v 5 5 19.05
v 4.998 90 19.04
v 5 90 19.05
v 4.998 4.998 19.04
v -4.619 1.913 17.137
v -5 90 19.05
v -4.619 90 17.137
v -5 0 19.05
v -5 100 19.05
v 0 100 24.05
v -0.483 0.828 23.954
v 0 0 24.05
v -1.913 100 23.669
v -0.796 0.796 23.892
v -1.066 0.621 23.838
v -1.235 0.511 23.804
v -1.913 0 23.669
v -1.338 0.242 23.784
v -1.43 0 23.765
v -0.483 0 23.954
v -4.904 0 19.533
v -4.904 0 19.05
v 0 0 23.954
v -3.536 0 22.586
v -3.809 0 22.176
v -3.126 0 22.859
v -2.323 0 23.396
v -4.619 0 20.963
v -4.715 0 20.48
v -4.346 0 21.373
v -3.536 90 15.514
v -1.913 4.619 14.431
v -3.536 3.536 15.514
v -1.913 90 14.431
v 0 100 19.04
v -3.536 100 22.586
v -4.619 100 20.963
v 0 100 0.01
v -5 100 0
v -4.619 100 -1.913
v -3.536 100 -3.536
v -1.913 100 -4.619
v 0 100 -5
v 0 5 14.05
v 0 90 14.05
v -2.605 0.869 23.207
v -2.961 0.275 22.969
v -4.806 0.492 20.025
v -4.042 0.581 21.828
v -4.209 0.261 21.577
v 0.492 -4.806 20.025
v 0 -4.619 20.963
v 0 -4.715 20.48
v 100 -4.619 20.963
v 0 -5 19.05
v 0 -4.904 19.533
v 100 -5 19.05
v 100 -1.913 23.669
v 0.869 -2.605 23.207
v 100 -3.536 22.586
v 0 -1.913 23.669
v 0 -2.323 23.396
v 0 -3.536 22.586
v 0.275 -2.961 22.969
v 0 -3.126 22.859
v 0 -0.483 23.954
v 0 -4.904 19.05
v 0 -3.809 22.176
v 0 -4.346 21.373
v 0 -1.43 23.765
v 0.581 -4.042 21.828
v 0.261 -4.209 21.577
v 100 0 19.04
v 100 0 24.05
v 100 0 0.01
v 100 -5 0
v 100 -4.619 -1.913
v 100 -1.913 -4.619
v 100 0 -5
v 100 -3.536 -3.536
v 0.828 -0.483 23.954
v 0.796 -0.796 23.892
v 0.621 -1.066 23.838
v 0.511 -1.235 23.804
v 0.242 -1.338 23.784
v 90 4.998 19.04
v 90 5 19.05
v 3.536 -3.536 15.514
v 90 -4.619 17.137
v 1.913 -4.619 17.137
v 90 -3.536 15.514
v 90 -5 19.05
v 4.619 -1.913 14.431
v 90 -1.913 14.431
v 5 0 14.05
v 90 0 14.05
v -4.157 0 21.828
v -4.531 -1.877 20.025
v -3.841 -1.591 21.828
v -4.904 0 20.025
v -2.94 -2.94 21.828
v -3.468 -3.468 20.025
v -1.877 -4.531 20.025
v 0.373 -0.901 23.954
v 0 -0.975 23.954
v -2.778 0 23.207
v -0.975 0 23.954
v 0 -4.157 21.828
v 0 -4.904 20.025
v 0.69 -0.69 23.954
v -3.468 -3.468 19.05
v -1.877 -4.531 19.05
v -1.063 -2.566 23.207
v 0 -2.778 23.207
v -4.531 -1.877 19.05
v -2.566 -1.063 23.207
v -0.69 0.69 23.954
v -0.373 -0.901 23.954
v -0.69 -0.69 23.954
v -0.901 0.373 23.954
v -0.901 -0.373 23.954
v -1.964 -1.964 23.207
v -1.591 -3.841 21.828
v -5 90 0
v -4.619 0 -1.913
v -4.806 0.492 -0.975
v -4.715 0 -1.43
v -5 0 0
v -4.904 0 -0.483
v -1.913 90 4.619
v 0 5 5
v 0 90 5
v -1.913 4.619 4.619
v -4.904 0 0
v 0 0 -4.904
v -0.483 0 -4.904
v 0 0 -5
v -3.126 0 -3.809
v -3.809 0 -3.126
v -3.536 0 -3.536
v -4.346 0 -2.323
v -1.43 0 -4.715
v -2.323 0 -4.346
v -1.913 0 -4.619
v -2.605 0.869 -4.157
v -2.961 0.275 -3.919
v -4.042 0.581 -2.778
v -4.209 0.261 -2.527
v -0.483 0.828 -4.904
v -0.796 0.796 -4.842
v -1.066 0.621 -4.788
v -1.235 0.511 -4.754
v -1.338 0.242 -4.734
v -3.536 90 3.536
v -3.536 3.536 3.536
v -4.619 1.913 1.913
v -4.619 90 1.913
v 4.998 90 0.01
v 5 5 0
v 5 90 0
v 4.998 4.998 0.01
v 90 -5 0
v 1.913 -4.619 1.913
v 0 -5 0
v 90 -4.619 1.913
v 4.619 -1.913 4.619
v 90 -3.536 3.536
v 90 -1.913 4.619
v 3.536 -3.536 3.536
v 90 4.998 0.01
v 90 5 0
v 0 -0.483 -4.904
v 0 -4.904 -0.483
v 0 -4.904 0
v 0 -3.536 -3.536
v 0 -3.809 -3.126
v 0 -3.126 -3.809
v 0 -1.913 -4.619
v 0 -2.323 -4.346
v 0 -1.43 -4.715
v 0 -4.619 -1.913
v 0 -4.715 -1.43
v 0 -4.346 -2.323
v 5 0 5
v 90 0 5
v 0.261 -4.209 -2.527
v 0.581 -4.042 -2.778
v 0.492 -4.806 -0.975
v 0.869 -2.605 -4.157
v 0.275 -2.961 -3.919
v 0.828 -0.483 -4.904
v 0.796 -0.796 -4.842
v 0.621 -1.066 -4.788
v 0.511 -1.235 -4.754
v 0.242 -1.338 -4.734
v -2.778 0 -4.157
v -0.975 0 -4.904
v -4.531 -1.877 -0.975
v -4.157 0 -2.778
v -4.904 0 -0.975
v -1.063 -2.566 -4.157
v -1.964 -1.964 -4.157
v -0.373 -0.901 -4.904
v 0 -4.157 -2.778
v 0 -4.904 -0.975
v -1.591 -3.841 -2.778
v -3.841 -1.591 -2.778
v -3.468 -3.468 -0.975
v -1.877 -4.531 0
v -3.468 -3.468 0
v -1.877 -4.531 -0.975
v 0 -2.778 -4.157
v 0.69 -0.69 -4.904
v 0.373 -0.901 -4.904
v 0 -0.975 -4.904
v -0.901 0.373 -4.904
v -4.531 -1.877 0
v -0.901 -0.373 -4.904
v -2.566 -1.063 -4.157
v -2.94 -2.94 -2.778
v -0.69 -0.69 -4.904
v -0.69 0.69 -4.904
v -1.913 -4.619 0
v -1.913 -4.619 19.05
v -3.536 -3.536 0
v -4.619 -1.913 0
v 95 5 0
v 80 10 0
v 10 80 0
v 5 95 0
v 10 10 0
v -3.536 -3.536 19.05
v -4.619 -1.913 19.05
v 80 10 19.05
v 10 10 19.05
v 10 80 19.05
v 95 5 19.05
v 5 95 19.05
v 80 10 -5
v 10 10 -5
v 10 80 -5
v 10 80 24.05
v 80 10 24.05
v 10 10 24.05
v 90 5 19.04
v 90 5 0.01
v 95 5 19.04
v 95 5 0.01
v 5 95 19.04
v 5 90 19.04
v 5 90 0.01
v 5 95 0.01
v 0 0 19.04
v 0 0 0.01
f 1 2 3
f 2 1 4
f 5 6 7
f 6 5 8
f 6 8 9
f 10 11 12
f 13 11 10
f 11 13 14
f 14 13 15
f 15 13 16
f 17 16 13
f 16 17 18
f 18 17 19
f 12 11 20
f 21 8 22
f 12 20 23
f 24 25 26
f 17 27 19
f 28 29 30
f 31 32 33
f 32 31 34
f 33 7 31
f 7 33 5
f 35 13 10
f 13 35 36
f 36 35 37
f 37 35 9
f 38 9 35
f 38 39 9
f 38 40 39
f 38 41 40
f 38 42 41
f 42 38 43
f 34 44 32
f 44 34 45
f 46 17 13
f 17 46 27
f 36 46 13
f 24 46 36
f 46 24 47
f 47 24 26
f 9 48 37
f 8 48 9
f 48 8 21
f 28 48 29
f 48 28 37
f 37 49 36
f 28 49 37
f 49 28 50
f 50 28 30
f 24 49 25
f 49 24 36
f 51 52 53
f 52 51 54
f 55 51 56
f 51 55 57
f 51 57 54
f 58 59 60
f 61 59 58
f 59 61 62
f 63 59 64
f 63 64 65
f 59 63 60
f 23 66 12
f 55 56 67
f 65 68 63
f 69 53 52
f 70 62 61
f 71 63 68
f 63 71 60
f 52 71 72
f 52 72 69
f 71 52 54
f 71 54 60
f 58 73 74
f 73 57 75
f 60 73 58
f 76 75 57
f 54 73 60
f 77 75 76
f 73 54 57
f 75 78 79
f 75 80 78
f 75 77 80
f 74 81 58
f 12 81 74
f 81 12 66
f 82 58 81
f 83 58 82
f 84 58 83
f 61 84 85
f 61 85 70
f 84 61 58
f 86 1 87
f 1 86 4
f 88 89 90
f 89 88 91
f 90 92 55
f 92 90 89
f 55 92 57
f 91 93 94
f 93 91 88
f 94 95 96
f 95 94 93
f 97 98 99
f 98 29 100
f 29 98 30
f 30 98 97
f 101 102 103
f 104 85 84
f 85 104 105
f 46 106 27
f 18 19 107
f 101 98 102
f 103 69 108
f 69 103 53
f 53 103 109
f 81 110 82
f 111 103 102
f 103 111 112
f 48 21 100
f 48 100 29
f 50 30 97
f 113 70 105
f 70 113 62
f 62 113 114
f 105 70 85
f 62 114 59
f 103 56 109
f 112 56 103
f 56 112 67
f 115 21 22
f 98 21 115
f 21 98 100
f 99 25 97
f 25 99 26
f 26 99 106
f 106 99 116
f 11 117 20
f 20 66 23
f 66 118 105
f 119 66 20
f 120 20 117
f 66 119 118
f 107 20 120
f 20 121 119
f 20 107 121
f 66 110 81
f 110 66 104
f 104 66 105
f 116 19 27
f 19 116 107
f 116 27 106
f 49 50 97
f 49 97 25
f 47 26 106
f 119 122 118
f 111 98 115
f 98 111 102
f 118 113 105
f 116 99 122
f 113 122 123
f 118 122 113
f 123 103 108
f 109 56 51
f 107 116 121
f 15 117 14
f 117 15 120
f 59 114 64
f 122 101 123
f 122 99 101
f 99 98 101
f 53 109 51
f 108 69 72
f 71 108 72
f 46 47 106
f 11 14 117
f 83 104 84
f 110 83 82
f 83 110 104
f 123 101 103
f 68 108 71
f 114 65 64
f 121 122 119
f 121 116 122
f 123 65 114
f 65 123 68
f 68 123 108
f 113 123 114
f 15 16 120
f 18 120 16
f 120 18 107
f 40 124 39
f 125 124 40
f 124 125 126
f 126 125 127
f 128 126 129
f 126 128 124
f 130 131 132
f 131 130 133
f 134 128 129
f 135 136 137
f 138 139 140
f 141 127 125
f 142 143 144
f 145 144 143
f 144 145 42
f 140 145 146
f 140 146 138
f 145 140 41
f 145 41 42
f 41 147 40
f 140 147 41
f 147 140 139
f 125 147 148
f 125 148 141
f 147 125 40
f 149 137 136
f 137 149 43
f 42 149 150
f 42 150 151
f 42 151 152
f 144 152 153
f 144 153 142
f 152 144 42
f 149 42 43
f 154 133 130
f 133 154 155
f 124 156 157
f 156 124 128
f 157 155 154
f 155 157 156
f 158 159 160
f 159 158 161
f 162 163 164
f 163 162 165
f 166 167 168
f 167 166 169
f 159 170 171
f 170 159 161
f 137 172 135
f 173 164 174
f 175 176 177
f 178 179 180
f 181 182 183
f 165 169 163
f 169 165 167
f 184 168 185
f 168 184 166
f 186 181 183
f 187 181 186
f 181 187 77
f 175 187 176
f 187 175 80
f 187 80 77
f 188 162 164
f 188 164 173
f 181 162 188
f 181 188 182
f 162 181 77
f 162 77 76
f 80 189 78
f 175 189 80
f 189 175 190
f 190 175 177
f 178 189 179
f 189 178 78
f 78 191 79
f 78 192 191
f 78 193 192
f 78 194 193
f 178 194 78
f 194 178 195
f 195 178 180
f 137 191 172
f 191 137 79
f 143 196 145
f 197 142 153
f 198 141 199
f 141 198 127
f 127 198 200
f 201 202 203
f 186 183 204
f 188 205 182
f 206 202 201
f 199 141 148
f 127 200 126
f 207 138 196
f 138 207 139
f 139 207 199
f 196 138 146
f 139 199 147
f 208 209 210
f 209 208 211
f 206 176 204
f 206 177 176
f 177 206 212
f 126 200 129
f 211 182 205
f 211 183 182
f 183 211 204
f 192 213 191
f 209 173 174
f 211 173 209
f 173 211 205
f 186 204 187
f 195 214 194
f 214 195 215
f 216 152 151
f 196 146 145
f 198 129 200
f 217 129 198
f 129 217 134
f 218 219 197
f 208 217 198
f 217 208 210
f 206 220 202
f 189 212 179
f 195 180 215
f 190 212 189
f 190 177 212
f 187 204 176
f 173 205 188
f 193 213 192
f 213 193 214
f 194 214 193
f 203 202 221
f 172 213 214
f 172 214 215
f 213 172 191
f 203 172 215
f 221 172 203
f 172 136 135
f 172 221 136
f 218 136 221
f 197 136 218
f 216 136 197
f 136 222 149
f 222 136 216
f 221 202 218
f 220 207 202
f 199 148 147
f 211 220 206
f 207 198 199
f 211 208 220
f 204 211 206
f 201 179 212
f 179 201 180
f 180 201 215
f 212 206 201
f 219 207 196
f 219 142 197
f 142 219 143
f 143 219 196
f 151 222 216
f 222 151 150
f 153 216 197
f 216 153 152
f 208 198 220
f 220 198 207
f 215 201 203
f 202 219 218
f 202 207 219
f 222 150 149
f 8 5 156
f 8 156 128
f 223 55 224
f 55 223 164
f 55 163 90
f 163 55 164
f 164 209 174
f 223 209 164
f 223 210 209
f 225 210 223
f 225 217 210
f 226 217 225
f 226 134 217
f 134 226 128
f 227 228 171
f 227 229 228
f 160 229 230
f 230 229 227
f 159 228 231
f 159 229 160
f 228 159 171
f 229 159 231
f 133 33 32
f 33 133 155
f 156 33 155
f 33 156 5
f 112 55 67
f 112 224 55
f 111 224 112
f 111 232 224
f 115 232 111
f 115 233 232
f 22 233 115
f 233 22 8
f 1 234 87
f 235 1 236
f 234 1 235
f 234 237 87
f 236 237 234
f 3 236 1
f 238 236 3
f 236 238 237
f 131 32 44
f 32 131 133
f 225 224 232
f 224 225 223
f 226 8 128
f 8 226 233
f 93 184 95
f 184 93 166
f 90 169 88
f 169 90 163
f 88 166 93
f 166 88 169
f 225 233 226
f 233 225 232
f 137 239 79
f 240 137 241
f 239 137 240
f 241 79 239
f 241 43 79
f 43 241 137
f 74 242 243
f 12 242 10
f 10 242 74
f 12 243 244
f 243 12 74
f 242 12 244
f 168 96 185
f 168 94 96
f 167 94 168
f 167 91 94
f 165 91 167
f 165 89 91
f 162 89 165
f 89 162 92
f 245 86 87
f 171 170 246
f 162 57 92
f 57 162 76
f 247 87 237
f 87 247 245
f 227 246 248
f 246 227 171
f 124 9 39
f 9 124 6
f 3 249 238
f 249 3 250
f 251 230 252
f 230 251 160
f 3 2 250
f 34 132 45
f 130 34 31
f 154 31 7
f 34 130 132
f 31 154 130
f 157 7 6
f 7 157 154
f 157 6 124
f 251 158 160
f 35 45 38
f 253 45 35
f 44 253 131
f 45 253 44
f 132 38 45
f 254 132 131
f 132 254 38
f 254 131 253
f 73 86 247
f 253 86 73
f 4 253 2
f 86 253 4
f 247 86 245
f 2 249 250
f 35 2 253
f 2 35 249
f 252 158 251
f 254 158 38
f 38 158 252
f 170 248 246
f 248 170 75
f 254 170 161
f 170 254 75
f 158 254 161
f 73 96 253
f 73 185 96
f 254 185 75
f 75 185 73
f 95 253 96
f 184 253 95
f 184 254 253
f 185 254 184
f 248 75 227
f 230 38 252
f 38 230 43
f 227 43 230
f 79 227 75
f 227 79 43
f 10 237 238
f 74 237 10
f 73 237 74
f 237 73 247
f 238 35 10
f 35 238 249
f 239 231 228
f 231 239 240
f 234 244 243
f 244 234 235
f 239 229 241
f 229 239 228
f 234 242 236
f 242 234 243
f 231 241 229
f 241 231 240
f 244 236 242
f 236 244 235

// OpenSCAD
e = 0.01;


difference () {
union() {
    
rotate([270, 0, 0]) cylinder(100, 5, 5);
rotate([0, 90, 0]) cylinder(100, 5, 5);
sphere(5);

translate([0, 0, 0.75*25.4])
union() {
rotate([270, 0, 0]) cylinder(100, 5, 5);
rotate([0, 90, 0]) cylinder(100, 5, 5);
sphere(5);
}

cylinder(0.75 * 25.4, 5, 5);

translate([0, 0, -5])
cube([100, 100, 5]);
    translate([0, 0, 0.75*25.4])
cube([100, 100, 5]);

translate([90, -5, 0])
cube([10, 10, 0.75*25.4]);

translate([-5, 90, 0])
cube([10, 10, 0.75*25.4]);

}


translate([0, 0, e])
cube([200, 200, 0.75*25.4 - 2 * e]);

translate([100, 0, -5-e])
rotate([0, 0, 45])
cube([200, 200, 200]);

translate([0, 0, -100])
linear_extrude(200)
polygon([[10, 10], [10, 80], [80, 10]]);
}
